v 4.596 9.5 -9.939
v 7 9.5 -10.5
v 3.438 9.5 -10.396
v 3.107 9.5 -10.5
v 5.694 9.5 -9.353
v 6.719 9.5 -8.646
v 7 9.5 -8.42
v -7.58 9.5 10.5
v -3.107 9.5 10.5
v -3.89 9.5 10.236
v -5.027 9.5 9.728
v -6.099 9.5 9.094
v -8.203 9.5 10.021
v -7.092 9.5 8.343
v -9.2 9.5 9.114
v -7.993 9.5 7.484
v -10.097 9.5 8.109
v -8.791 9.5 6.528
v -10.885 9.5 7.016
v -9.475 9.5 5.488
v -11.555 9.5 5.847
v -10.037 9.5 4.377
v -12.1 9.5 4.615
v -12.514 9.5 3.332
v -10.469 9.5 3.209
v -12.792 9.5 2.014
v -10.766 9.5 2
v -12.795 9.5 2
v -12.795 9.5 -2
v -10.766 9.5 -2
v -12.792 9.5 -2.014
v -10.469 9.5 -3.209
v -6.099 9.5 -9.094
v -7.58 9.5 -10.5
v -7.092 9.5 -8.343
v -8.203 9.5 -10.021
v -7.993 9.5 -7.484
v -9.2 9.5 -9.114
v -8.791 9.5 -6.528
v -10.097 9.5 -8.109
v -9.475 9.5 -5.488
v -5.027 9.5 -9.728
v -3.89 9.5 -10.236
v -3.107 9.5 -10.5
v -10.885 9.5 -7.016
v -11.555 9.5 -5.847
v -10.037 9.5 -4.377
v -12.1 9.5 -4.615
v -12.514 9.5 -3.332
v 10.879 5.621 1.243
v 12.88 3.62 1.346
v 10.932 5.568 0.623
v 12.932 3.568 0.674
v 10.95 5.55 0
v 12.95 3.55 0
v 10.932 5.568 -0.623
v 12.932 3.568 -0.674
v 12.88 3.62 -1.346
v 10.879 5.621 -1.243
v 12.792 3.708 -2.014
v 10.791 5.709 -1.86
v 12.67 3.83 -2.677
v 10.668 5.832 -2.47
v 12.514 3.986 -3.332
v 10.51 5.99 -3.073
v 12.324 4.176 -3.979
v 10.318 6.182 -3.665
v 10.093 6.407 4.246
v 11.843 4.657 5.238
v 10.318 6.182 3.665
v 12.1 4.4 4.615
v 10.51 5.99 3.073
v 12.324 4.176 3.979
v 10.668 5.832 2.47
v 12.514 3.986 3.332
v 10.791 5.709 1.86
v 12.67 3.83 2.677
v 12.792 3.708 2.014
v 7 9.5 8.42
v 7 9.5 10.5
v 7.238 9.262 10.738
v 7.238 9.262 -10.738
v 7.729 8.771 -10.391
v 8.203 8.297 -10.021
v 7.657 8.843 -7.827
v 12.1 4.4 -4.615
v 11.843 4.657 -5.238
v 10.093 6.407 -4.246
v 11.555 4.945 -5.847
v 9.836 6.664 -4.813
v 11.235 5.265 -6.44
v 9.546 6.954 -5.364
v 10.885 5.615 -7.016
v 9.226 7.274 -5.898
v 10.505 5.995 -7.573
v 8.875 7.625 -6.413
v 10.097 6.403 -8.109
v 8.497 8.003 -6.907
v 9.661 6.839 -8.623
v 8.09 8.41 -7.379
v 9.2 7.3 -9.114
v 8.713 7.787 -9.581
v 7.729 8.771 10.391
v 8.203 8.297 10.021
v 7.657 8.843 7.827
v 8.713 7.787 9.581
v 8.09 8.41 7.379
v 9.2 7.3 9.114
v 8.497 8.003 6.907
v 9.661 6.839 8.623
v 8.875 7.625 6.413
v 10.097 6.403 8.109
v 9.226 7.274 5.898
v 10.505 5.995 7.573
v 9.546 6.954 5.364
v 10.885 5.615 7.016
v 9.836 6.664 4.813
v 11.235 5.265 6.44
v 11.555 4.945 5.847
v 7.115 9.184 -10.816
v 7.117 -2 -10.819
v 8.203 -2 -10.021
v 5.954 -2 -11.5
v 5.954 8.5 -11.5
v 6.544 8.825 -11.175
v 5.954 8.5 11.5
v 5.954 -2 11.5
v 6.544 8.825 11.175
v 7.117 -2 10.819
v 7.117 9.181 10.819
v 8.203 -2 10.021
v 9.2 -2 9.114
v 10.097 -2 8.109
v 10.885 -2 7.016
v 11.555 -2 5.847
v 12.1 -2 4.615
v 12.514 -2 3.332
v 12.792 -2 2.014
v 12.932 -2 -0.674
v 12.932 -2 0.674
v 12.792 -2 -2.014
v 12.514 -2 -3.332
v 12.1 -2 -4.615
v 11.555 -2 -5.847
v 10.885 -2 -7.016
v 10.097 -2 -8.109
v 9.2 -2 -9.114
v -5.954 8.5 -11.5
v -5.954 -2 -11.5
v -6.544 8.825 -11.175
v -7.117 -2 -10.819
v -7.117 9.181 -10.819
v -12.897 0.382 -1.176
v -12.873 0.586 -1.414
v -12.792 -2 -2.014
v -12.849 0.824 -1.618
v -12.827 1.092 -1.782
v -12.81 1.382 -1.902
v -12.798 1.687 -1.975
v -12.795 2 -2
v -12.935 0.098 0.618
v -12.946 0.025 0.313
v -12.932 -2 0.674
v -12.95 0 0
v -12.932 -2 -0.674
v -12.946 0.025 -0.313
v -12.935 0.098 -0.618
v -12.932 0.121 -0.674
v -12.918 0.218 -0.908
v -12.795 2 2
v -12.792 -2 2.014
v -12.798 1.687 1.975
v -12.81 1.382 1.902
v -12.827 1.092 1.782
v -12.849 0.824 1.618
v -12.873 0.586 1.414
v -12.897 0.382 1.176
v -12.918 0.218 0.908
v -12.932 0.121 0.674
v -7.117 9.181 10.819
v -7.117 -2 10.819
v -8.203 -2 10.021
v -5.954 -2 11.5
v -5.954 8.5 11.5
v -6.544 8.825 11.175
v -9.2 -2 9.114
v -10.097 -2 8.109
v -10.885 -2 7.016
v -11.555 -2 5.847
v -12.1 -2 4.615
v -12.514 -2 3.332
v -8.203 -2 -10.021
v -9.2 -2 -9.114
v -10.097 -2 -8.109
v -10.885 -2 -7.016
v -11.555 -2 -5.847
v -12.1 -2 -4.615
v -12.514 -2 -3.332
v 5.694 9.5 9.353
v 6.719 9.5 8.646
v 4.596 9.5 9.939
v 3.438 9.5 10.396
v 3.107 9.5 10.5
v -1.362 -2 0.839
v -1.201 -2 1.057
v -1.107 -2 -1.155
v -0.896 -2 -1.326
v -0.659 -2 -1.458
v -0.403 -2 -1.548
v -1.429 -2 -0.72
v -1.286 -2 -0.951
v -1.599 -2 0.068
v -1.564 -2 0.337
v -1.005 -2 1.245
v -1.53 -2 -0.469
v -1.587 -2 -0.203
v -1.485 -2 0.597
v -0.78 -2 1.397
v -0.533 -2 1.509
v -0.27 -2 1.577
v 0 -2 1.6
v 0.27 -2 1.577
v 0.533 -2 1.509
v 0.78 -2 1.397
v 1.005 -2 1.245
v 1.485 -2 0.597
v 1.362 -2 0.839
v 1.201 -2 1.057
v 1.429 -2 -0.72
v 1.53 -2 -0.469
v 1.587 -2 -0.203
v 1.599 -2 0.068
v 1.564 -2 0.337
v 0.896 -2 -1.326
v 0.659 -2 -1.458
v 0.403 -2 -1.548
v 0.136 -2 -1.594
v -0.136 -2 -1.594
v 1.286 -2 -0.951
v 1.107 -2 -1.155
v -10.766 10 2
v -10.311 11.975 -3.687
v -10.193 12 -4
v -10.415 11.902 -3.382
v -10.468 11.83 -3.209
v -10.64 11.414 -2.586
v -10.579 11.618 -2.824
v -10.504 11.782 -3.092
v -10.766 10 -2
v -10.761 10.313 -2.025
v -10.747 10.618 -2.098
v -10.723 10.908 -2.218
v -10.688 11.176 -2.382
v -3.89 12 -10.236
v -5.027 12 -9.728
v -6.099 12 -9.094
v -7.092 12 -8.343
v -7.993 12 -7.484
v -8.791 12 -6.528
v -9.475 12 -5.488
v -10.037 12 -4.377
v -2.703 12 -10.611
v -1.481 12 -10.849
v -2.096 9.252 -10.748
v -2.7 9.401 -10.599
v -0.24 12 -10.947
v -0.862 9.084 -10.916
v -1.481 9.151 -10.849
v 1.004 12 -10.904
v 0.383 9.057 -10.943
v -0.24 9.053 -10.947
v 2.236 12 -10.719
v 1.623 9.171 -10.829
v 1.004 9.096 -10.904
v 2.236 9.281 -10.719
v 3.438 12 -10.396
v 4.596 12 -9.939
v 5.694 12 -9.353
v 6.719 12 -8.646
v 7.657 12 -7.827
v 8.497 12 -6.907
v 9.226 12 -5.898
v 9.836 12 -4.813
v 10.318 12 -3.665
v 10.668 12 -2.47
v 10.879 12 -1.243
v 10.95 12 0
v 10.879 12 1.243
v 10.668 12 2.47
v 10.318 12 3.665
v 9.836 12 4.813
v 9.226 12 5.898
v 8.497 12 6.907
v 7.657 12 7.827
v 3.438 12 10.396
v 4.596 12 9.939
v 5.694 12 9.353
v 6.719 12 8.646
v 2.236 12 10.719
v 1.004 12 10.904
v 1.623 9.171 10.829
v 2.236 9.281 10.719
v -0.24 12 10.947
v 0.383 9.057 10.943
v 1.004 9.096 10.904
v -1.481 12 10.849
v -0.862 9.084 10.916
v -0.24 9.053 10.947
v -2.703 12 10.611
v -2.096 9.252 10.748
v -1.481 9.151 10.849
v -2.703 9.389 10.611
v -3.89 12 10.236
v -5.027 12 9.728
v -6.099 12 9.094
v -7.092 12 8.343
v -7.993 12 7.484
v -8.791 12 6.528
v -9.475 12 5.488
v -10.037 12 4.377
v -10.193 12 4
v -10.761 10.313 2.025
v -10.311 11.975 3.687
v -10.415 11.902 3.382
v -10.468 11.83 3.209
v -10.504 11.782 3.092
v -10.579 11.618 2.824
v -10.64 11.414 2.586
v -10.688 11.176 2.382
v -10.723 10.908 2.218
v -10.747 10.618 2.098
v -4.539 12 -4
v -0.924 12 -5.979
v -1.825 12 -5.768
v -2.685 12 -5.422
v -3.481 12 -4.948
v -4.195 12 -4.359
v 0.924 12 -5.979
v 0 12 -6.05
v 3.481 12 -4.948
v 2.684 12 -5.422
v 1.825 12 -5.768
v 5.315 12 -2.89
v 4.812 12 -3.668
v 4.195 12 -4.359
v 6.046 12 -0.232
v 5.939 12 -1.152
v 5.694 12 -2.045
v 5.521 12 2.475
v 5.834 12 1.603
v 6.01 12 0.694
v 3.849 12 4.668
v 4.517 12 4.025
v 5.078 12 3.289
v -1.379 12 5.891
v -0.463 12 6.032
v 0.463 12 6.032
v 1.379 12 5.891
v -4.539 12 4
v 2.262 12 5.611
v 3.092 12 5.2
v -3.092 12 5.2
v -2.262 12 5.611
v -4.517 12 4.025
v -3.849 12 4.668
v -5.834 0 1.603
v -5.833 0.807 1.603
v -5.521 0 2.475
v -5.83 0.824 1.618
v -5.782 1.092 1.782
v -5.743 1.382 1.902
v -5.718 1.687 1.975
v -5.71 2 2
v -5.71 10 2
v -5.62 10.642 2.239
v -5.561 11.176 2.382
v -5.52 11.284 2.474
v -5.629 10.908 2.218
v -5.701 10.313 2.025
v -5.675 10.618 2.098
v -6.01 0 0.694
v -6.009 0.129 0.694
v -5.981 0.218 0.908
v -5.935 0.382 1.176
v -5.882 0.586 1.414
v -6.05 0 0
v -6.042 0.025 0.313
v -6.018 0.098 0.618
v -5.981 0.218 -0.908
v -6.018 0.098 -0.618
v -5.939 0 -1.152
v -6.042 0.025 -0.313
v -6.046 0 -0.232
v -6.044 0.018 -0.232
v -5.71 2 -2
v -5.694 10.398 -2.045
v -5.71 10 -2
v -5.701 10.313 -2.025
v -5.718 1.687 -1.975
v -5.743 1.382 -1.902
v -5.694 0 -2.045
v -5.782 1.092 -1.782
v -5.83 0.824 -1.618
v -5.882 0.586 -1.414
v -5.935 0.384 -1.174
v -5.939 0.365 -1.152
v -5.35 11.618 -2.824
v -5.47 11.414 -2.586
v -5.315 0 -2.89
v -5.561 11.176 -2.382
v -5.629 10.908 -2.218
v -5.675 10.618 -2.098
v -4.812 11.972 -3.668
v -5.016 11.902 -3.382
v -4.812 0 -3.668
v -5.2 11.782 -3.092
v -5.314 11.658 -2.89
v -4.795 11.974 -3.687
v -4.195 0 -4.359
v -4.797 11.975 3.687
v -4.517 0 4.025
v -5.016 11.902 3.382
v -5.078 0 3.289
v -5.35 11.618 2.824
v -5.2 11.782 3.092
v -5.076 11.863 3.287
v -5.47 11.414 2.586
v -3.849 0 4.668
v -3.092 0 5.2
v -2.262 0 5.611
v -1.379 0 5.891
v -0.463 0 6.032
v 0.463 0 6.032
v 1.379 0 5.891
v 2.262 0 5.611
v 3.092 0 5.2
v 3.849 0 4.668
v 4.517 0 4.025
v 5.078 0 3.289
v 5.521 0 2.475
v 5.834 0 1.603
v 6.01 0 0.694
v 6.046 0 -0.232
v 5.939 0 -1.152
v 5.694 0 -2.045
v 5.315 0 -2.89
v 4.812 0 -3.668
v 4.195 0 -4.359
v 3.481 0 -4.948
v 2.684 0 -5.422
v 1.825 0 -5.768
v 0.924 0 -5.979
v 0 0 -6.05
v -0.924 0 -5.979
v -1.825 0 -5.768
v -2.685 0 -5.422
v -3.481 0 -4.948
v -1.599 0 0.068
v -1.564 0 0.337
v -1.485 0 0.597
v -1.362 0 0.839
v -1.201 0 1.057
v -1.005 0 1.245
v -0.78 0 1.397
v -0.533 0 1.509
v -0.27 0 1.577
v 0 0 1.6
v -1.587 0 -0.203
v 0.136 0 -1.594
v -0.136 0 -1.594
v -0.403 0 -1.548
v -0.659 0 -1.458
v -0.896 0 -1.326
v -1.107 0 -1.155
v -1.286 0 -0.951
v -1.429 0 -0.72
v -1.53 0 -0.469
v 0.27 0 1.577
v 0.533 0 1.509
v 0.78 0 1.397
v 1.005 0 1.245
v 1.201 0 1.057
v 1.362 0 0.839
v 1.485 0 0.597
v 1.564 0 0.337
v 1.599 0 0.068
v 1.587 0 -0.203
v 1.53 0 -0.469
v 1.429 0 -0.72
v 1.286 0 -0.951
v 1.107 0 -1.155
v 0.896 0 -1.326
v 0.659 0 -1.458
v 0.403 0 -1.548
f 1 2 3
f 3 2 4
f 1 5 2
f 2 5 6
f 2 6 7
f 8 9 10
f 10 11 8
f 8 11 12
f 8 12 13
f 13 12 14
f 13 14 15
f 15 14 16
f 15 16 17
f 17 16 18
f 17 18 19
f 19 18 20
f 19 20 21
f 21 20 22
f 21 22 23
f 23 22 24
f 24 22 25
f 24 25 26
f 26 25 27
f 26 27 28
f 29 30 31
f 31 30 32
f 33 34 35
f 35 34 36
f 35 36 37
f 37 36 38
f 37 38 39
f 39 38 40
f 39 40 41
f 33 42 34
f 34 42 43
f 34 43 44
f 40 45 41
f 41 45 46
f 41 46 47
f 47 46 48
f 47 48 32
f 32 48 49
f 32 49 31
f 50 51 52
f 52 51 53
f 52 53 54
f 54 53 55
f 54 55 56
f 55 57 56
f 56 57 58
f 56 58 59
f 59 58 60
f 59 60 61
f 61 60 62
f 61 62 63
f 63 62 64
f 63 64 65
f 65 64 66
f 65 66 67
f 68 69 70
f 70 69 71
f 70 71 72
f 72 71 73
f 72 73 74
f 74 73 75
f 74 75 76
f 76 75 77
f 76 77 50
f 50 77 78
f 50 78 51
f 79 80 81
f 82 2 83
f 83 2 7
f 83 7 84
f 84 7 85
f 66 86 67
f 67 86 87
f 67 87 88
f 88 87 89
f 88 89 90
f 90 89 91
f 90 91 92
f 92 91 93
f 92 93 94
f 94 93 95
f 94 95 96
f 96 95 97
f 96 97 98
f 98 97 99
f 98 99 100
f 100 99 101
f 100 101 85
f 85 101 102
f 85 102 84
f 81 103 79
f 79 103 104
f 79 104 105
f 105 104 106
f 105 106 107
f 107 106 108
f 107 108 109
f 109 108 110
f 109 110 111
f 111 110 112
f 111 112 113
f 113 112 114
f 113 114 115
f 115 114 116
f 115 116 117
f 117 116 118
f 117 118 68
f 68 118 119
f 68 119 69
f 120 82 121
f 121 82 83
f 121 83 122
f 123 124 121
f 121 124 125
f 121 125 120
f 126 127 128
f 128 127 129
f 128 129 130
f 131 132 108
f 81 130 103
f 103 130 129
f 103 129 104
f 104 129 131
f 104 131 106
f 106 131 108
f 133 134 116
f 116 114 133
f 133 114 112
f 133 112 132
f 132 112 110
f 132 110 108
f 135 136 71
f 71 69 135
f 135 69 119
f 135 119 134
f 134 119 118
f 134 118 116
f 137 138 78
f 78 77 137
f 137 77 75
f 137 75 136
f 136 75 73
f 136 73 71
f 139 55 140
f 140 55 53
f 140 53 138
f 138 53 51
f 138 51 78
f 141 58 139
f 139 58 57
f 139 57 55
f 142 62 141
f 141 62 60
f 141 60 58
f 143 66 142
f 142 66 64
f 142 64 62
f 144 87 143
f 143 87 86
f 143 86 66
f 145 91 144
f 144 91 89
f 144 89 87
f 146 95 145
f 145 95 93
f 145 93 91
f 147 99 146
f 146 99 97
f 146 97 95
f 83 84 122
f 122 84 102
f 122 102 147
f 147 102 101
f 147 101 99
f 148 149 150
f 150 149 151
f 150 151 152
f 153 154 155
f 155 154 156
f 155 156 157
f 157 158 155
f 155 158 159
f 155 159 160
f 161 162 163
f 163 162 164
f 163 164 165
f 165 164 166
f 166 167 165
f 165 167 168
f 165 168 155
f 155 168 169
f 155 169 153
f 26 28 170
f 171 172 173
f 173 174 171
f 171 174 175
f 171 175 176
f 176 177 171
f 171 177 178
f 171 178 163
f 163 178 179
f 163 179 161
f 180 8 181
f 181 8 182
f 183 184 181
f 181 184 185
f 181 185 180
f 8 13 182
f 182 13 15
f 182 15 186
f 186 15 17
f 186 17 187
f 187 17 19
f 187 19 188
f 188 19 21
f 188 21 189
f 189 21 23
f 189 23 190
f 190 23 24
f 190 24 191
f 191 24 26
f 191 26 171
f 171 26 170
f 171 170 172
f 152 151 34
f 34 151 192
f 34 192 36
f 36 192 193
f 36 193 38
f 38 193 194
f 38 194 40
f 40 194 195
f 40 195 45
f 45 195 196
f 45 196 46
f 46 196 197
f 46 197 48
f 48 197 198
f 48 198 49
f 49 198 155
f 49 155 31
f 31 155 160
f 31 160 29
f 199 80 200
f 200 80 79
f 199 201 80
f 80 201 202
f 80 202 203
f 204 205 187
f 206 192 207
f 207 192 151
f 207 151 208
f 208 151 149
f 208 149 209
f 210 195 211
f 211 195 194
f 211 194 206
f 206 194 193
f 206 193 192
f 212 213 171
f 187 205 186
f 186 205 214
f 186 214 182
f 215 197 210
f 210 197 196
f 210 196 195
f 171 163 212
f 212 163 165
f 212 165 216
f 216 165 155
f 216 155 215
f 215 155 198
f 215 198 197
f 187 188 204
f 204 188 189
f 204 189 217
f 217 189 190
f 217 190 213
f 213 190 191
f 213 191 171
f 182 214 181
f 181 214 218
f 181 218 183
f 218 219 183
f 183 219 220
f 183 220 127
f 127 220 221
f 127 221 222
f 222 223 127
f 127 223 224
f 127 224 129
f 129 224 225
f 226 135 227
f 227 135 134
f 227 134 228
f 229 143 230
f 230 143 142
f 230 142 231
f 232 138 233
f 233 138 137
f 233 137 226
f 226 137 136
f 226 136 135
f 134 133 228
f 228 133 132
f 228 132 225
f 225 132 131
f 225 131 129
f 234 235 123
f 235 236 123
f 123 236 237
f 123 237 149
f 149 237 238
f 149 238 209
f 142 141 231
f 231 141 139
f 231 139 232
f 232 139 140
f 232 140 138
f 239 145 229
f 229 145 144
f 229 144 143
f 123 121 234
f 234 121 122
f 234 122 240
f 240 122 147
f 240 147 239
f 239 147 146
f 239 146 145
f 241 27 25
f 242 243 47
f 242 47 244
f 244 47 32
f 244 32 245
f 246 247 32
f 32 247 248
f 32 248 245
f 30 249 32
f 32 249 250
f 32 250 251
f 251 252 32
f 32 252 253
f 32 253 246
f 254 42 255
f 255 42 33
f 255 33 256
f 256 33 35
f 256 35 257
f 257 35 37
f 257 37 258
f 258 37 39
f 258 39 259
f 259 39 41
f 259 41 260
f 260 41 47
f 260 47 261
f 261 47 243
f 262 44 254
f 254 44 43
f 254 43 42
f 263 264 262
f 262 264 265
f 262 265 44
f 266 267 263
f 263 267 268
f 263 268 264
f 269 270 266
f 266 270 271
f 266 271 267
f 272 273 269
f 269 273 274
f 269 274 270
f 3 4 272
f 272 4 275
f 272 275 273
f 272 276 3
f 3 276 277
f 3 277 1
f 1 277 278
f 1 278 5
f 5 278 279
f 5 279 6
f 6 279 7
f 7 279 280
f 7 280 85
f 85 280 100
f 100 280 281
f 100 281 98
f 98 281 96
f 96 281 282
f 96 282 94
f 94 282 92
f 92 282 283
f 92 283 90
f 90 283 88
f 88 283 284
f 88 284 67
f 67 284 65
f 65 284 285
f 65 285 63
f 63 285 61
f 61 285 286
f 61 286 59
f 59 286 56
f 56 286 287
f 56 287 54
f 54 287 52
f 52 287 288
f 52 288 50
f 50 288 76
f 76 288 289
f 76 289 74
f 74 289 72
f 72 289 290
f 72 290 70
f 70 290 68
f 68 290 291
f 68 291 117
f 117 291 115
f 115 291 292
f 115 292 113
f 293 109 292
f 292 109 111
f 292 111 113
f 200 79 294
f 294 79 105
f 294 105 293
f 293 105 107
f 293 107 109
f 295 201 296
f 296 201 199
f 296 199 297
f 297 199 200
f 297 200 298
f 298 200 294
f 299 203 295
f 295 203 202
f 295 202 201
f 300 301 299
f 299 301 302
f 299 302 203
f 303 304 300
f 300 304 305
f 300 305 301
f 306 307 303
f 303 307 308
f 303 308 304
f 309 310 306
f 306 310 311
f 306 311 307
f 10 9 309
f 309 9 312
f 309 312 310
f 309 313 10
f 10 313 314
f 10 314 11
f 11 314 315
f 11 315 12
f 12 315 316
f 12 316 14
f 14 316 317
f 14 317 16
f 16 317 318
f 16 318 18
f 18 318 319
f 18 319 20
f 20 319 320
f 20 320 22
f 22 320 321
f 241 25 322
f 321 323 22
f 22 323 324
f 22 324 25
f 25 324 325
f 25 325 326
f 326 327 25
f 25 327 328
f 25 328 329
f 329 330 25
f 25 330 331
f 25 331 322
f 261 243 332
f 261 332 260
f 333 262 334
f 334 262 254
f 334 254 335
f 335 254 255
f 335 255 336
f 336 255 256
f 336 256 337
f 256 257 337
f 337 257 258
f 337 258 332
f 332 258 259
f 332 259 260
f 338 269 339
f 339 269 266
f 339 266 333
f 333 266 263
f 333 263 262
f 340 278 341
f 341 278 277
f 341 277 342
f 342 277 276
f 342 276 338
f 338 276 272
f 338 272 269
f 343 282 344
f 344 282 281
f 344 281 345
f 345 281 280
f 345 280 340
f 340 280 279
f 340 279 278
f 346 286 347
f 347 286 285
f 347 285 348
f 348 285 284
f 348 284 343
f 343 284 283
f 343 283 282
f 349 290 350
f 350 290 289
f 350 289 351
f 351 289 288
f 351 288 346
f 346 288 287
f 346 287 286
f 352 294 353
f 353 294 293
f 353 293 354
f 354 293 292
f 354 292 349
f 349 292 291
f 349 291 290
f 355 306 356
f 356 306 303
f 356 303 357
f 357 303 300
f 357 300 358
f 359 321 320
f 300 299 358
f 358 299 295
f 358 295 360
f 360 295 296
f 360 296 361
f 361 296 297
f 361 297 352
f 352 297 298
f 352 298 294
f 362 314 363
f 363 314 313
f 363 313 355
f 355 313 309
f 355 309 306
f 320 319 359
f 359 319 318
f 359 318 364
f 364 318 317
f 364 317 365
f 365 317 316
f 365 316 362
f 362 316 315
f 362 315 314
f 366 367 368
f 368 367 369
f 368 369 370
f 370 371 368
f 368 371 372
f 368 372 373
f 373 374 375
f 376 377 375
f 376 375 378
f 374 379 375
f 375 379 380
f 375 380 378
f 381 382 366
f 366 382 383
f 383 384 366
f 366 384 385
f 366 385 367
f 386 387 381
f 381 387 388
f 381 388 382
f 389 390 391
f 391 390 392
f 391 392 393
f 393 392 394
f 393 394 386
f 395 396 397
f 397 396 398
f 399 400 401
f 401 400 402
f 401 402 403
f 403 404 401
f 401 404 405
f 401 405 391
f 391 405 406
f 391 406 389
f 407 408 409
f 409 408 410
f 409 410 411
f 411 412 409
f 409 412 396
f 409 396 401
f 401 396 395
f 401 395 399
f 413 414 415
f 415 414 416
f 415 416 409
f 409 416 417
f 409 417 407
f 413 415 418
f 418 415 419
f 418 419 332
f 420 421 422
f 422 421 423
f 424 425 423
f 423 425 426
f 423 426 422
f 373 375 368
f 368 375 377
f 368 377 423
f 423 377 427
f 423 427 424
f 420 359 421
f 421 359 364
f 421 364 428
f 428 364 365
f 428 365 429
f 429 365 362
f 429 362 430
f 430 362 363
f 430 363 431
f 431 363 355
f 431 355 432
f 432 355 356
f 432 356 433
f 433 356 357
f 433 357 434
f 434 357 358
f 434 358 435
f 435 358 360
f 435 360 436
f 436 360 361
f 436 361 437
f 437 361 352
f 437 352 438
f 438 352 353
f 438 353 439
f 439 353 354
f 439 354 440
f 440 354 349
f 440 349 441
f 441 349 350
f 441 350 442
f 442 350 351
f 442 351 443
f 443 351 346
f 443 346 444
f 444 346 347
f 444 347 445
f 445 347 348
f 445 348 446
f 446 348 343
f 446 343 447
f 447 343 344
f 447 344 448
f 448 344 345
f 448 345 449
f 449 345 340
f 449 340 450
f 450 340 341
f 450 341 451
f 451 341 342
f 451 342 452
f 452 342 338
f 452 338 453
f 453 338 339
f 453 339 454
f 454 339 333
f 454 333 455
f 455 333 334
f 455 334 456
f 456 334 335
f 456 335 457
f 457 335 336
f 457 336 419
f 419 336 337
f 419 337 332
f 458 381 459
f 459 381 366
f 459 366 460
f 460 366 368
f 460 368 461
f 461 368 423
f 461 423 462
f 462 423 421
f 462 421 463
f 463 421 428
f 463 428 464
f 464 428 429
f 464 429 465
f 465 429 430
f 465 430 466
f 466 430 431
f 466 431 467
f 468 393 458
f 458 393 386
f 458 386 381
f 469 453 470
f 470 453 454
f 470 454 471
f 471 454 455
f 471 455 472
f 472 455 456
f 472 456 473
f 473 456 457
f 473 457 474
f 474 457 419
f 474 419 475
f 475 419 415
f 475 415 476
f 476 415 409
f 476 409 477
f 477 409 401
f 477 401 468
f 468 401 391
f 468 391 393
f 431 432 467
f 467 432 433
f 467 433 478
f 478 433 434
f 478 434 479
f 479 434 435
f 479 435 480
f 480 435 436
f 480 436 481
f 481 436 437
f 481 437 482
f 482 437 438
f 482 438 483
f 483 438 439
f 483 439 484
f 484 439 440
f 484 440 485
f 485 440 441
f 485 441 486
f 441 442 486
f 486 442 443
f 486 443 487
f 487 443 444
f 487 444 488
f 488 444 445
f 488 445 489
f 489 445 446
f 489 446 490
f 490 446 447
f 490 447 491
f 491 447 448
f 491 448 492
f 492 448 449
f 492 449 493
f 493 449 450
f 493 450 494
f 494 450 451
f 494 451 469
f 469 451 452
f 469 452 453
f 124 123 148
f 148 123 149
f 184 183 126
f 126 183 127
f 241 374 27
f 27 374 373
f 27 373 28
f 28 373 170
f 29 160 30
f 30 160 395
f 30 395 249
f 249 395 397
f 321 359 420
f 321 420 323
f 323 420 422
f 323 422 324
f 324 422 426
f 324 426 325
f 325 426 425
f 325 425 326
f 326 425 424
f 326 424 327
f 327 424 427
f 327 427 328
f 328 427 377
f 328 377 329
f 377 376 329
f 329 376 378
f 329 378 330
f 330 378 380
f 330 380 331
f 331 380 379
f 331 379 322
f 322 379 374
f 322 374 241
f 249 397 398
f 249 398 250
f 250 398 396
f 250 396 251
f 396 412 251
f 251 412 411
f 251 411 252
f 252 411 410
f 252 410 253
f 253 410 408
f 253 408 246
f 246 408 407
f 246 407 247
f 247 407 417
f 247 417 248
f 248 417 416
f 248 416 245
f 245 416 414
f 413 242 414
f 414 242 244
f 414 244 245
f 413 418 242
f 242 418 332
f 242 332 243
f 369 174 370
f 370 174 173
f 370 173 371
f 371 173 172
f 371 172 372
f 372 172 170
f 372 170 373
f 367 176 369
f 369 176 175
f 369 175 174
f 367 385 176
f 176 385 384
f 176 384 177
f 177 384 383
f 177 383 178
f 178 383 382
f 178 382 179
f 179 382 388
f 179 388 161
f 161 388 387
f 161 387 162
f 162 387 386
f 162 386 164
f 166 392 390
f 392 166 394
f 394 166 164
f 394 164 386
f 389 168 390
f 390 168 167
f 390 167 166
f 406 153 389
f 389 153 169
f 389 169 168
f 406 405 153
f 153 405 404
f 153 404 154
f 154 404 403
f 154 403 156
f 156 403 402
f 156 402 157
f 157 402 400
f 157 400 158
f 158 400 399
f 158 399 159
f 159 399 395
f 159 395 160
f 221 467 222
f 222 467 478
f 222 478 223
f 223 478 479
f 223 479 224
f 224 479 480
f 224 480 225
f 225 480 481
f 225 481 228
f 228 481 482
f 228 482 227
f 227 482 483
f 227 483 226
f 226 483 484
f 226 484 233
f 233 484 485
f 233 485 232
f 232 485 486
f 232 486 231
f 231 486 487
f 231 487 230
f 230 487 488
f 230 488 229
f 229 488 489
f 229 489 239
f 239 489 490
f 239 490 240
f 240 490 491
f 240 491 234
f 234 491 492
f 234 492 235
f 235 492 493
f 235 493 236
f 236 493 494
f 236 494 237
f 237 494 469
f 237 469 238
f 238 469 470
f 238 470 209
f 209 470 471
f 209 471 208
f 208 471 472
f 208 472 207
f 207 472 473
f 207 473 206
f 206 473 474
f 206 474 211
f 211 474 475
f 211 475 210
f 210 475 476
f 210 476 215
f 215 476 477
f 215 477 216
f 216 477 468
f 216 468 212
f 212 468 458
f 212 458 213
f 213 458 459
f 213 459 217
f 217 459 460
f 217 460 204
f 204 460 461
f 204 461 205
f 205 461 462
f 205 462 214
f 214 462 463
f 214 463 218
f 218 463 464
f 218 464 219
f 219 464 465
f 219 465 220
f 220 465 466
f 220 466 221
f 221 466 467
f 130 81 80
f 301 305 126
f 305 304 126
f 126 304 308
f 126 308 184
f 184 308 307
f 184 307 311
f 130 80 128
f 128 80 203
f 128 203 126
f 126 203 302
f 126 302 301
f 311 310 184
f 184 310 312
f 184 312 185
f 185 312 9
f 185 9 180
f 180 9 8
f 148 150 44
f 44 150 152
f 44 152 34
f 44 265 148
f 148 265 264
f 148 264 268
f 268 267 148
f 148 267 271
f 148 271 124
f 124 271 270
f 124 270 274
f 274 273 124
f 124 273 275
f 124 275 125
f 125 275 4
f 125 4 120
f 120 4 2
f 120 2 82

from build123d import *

# Parameters (mm, degrees)
SKETCH1_R               = 10.95
SKETCH1_R_2             = 6.05
BOSS_EXTRUDE1_DEPTH     = 2
BOSS_EXTRUDE2_START     = 12
SKETCH1_3_R             = 10.95
SKETCH1_3_R_2           = 6.05
BOSS_EXTRUDE2_DEPTH     = 12
BOSS_EXTRUDE3_START     = -2.5
SKETCH2_R               = 12.95
SKETCH2_R_2             = 10.95
BOSS_EXTRUDE3_DEPTH     = 11.5
CUT_EXTRUDE1_DEPTH      = 22.895319134
CUT_EXTRUDE1_DEPTH_BACK = 22.895319134
SKETCH3_W               = 100
SKETCH3_H               = 23
CUT_EXTRUDE3_DEPTH      = 22.07018035
CUT_EXTRUDE3_DEPTH_BACK = 22.07018035
BOSS_EXTRUDE4_START     = 12
SKETCH1_5_R             = 10.95
SKETCH1_5_R_2           = 6.05
BOSS_EXTRUDE4_DEPTH     = 12
SKETCH5_W               = 18
SKETCH5_H               = 4
CUT_EXTRUDE4_DEPTH      = 22.07018035
FILLET1_R               = 2
CUT_EXTRUDE5_DEPTH      = 22.070180523
CUT_EXTRUDE5_DEPTH_BACK = 22.070180523
SKETCH6_R               = 1.6
CHAMFER1_SIZE           = 1


# Some blends are built 0.0001 mm under size
with BuildPart() as part:
    # Sketch1 → Boss-Extrude1 (new body)
    # profile 1 of 2: a face of its own
    with BuildSketch(Plane(origin=(0, 0, 0), x_dir=(1, 0, 0), z_dir=(0, 1, 0))):
        with Locations(Location((0, 0, 0), (0, 0, 270))):
            Circle(SKETCH1_R)
        Circle(SKETCH1_R_2, mode=Mode.SUBTRACT)
    # profile 2 of 2: a face of its own
    with BuildSketch(Plane(origin=(0, 0, 0), x_dir=(1, 0, 0), z_dir=(0, 1, 0))):
        Circle(SKETCH1_R_2)
    extrude(amount=-BOSS_EXTRUDE1_DEPTH)

    # Sketch1<3> → Boss-Extrude2 (add)
    with BuildSketch(Plane(origin=(0, 0, 0), x_dir=(1, 0, 0), z_dir=(0, 1, 0)).offset(BOSS_EXTRUDE2_START)):
        with Locations(Location((0, 0, 0), (0, 0, 270))):
            Circle(SKETCH1_3_R)
        with Locations(Location((0, 0, 0), (0, 0, 270))):
            Circle(SKETCH1_3_R_2, mode=Mode.SUBTRACT)
    extrude(amount=-BOSS_EXTRUDE2_DEPTH)

    # Sketch2 → Boss-Extrude3 (add)
    with BuildSketch(Plane(origin=(0, 12, 0), x_dir=(1, 0, 0), z_dir=(0, 1, 0)).offset(BOSS_EXTRUDE3_START)):
        with Locations(Location((0, 0, 0), (0, 0, 270))):
            Circle(SKETCH2_R)
        with Locations(Location((0, 0, 0), (0, 0, 270))):
            Circle(SKETCH2_R_2, mode=Mode.SUBTRACT)
    extrude(amount=-BOSS_EXTRUDE3_DEPTH)

    # Sketch3 → Cut-Extrude1 (cut, two sides: drawn at the far end of the back side and taken through both)
    with BuildSketch(Plane(origin=(0, 0, 0), x_dir=(1, 0, 0), z_dir=(0, 1, 0)).offset(-CUT_EXTRUDE1_DEPTH_BACK)):
        with Locations((0, -23)):
            Rectangle(SKETCH3_W, SKETCH3_H)
        with Locations((0, 23)):
            Rectangle(SKETCH3_W, SKETCH3_H)
    extrude(amount=CUT_EXTRUDE1_DEPTH + CUT_EXTRUDE1_DEPTH_BACK, mode=Mode.SUBTRACT)

    # Sketch4 → Cut-Extrude3 (cut, two sides: drawn at the far end of the back side and taken through both)
    with BuildSketch(Plane.XY.offset(-CUT_EXTRUDE3_DEPTH_BACK)):
        Polygon((13, 12), (4.5, 12), (13, 3.5), align=None)
    extrude(amount=CUT_EXTRUDE3_DEPTH + CUT_EXTRUDE3_DEPTH_BACK, mode=Mode.SUBTRACT)

    # Sketch1<5> → Boss-Extrude4 (add)
    with BuildSketch(Plane(origin=(0, 0, 0), x_dir=(1, 0, 0), z_dir=(0, 1, 0)).offset(BOSS_EXTRUDE4_START)):
        with Locations(Location((0, 0, 0), (0, 0, 270))):
            Circle(SKETCH1_5_R)
        with Locations(Location((0, 0, 0), (0, 0, 270))):
            Circle(SKETCH1_5_R_2, mode=Mode.SUBTRACT)
    extrude(amount=-BOSS_EXTRUDE4_DEPTH)

    # Sketch5 → Cut-Extrude4 (cut, through all)
    with BuildSketch(Plane(origin=(0, 0, 0), x_dir=(1, 0, 0), z_dir=(0, 1, 0))):
        with Locations((-11, 0)):
            Rectangle(SKETCH5_W, SKETCH5_H)
    extrude(amount=CUT_EXTRUDE4_DEPTH, mode=Mode.SUBTRACT)

    # Fillet1
    fillet1_edges = [part.edges().sort_by_distance(p)[0] for p in [
        (-8.237831116, 12, 2),
        (-8.237831116, 12, -2),
        (-9.252243836, 0, -2),
        (-9.252243836, 0, 2),
    ]]
    fillet(fillet1_edges, radius=FILLET1_R - 0.0001)  # a hair under: the kernel refuses the full size

    # Sketch6 → Cut-Extrude5 (cut, two sides: drawn at the far end of the back side and taken through both)
    with BuildSketch(Plane(origin=(0, 0, 0), x_dir=(1, 0, 0), z_dir=(0, 1, 0)).offset(-CUT_EXTRUDE5_DEPTH_BACK)):
        with Locations(Location((0, 0, 0), (0, 0, 270))):
            Circle(SKETCH6_R)
    extrude(amount=CUT_EXTRUDE5_DEPTH + CUT_EXTRUDE5_DEPTH_BACK, mode=Mode.SUBTRACT)

    # Chamfer1
    # the kernel refuses this chamfer: 1 mm, written as the material it takes off along each edge
    with BuildSketch(Plane(origin=(8.525883186, 9.5, 11.5), x_dir=(0, 0.027495876610585647, -0.9996219169112968), z_dir=(-1, 0, 0))) as chamfer1_piece_1_section:
        Polygon((CHAMFER1_SIZE * 0.999621916911, CHAMFER1_SIZE * 0.0274958766106), (-CHAMFER1_SIZE * 0.0274958766106, CHAMFER1_SIZE * 0.999621916911), (0, 0), align=None)
    chamfer1_piece_1 = extrude(amount=17.051766372, mode=Mode.PRIVATE)
    chamfer1_piece_1 = chamfer1_piece_1 - Plane(origin=(0, 9.159933663, 0), x_dir=(0, 0, 1), z_dir=(0, 1, 0)) * Cylinder(10.95, 39, mode=Mode.PRIVATE)
    add(chamfer1_piece_1, mode=Mode.SUBTRACT)
    with BuildSketch(Plane(origin=(8.525883186, 9.5, -11.5), x_dir=(0, 0.027495876610585647, 0.9996219169112968), z_dir=(-1, 0, 0))) as chamfer1_piece_2_section:
        Polygon((CHAMFER1_SIZE * 0.999621916911, -CHAMFER1_SIZE * 0.0274958766106), (-CHAMFER1_SIZE * 0.0274958766106, -CHAMFER1_SIZE * 0.999621916911), (0, 0), align=None)
    chamfer1_piece_2 = extrude(amount=17.051766372, mode=Mode.PRIVATE)
    chamfer1_piece_2 = chamfer1_piece_2 - Plane(origin=(0, 9.159933662, 0), x_dir=(0, 0, 1), z_dir=(0, 1, 0)) * Cylinder(10.95, 39, mode=Mode.PRIVATE)
    add(chamfer1_piece_2, mode=Mode.SUBTRACT)


solid = part.part
